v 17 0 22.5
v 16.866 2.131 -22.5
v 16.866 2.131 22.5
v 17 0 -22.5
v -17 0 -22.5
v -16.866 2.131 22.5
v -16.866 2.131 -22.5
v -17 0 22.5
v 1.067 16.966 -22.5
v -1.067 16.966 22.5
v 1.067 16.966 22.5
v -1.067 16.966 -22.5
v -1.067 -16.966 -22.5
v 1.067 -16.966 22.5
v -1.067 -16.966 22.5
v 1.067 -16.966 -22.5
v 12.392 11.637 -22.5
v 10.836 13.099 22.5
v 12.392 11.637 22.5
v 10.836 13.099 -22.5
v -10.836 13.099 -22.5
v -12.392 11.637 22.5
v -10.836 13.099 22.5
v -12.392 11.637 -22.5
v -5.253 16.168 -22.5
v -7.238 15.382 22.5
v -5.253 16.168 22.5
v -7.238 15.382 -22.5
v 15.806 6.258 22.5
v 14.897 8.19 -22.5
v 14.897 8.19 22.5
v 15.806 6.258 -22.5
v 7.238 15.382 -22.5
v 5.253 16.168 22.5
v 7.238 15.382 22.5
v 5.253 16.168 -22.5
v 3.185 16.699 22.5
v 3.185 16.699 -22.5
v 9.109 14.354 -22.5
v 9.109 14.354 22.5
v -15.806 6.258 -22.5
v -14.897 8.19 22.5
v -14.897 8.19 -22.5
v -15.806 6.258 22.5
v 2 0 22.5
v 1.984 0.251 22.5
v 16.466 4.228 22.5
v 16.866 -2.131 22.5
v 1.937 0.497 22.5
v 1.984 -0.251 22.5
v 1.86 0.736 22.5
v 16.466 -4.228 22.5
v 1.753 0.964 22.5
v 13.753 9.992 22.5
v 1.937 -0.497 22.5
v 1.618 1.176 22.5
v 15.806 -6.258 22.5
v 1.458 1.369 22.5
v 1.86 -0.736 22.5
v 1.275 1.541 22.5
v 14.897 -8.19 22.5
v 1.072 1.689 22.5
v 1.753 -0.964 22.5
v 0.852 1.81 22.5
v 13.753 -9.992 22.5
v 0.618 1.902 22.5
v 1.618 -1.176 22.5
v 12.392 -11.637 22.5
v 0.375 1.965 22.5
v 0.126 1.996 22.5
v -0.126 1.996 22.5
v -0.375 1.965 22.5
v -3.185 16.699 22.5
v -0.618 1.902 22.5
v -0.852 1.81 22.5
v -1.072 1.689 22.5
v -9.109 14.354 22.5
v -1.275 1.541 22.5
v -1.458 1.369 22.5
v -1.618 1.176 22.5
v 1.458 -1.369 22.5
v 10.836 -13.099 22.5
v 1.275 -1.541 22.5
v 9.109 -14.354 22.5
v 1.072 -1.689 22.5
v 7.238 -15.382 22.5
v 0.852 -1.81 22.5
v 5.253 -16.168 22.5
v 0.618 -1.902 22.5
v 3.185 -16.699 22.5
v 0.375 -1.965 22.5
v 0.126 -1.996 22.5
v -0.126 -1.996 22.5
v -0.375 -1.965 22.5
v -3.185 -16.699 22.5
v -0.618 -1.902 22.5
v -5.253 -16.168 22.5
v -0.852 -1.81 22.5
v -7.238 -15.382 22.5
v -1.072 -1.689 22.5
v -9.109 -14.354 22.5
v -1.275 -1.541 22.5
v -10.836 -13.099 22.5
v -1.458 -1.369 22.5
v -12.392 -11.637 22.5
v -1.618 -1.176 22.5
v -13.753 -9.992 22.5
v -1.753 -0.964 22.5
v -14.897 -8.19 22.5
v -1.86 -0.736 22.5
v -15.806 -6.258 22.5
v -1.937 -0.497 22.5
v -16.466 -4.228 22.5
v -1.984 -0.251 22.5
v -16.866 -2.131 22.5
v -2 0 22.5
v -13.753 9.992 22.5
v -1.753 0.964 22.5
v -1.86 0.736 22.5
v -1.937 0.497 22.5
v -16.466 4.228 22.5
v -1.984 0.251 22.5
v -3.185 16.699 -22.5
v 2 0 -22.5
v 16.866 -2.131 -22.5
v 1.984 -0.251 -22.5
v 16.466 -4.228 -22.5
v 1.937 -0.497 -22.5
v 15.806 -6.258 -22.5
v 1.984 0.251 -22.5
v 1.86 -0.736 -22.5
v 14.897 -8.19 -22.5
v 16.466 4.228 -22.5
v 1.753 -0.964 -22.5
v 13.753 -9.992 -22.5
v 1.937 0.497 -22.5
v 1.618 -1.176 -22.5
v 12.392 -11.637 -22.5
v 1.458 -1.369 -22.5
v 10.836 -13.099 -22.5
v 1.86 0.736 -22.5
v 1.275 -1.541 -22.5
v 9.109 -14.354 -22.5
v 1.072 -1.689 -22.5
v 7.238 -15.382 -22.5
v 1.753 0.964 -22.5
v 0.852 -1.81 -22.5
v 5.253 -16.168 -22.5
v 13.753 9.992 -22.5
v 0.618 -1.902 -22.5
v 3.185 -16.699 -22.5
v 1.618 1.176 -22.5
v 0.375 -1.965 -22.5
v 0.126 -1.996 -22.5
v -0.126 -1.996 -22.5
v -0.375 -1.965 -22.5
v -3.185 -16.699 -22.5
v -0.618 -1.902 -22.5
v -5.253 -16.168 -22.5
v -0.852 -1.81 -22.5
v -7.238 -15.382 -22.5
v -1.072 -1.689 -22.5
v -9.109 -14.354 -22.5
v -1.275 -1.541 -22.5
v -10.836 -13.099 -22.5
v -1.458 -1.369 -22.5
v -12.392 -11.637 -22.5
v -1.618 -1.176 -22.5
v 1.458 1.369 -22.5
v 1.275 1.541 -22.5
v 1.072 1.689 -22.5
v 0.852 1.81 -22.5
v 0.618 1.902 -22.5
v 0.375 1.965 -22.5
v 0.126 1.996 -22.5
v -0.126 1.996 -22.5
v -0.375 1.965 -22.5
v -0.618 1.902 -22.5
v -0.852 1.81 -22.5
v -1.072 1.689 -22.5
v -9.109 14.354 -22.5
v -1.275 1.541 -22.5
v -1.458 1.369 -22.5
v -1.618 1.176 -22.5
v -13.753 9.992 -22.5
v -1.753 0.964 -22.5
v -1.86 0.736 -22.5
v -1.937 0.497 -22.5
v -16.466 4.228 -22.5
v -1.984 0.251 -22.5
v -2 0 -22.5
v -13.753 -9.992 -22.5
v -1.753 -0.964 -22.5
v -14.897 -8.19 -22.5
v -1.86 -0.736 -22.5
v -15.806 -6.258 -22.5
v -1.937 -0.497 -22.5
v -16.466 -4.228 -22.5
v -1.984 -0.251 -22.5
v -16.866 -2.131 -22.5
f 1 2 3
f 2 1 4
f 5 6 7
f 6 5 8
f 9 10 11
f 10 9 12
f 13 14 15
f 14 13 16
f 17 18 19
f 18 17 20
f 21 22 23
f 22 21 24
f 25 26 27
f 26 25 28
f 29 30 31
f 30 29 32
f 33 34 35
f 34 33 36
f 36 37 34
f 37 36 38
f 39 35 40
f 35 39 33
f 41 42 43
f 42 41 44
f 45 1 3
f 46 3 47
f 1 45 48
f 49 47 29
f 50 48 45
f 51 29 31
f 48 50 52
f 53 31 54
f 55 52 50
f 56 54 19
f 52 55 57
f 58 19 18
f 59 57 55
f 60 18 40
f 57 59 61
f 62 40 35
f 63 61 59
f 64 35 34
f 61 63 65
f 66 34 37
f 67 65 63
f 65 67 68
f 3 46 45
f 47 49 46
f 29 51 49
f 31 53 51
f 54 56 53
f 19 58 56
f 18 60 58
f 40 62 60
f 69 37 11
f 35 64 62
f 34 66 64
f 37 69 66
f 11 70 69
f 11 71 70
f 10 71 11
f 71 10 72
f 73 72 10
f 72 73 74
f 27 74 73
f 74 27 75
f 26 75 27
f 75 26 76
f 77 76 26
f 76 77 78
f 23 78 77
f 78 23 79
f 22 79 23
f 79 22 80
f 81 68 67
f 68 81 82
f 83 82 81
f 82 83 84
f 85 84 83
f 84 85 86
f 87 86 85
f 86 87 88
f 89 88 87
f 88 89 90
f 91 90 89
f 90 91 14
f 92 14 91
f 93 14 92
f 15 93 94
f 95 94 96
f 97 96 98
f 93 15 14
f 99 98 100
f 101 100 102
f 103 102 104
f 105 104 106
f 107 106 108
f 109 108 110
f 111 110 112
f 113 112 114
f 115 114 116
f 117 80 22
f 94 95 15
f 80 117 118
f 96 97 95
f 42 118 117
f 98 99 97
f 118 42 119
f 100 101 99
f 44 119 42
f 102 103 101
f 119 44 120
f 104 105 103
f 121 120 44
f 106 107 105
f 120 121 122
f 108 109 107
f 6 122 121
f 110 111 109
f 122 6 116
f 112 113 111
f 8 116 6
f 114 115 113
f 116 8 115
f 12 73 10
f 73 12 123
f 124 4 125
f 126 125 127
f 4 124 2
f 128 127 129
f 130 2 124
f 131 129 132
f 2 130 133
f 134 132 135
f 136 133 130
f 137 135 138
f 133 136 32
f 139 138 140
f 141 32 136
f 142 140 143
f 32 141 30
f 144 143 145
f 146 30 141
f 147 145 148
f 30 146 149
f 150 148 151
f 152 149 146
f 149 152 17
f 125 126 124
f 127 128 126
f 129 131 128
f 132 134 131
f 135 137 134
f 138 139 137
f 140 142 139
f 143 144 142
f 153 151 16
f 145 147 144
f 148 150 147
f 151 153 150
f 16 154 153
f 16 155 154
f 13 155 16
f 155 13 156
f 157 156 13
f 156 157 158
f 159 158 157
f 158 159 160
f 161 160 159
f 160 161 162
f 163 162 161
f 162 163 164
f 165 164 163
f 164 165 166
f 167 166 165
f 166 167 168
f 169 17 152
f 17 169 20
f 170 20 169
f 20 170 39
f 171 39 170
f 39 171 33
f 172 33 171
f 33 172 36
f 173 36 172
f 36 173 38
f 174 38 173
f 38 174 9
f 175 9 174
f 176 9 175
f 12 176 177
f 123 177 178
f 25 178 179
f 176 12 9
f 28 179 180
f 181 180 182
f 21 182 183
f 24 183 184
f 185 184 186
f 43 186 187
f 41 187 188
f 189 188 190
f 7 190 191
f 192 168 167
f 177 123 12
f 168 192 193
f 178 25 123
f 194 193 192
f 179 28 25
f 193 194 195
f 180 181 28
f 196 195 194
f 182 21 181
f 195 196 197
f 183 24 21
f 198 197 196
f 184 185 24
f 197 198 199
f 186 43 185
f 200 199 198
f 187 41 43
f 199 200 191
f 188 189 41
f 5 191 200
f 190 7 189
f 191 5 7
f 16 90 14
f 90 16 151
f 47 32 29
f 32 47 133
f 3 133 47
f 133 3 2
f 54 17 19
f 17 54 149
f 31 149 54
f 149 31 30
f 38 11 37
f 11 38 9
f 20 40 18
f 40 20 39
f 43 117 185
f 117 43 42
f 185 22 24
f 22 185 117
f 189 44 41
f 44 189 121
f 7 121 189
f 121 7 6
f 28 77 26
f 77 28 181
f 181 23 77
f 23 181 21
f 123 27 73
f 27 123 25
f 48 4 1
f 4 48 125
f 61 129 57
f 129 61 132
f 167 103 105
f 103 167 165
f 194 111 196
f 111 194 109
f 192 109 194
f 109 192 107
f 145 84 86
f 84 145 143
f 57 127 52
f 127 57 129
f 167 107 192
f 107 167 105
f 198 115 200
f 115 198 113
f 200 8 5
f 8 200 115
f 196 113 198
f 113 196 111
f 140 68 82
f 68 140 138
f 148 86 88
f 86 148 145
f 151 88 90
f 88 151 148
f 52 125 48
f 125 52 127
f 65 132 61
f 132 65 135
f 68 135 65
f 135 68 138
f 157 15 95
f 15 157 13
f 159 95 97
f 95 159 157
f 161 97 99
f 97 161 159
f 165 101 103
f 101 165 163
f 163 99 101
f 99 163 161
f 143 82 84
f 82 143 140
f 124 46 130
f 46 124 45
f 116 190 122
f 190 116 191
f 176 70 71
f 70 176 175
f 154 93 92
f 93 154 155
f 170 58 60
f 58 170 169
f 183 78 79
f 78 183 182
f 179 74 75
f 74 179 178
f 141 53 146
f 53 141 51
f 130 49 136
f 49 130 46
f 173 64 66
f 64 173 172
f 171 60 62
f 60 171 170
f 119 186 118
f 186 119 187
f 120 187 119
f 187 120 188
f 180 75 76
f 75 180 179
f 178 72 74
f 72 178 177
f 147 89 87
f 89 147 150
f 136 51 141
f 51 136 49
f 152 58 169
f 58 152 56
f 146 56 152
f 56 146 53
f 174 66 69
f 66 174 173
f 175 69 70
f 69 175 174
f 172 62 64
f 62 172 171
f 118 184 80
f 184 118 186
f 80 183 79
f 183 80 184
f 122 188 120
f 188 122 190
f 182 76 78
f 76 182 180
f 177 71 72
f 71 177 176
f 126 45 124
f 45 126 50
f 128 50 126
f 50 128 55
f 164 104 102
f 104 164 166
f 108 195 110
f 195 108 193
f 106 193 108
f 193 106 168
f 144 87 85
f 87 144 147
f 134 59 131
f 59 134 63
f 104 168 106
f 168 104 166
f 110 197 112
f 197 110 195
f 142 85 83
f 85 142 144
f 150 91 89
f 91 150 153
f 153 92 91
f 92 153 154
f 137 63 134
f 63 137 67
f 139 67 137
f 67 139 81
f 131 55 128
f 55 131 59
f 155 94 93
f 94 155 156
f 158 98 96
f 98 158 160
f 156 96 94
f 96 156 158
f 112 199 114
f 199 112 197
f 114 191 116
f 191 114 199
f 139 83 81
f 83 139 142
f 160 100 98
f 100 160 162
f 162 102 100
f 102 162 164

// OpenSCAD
$fn = 50;


difference() {
	union() {
		translate(v = [0, 0, -22.5000000000]) {
			cylinder(h = 45, r = 17.0000000000);
		}
	}
	union() {
		translate(v = [0, 0, -100.0000000000]) {
			cylinder(h = 200, r = 2.0000000000);
		}
	}
}
